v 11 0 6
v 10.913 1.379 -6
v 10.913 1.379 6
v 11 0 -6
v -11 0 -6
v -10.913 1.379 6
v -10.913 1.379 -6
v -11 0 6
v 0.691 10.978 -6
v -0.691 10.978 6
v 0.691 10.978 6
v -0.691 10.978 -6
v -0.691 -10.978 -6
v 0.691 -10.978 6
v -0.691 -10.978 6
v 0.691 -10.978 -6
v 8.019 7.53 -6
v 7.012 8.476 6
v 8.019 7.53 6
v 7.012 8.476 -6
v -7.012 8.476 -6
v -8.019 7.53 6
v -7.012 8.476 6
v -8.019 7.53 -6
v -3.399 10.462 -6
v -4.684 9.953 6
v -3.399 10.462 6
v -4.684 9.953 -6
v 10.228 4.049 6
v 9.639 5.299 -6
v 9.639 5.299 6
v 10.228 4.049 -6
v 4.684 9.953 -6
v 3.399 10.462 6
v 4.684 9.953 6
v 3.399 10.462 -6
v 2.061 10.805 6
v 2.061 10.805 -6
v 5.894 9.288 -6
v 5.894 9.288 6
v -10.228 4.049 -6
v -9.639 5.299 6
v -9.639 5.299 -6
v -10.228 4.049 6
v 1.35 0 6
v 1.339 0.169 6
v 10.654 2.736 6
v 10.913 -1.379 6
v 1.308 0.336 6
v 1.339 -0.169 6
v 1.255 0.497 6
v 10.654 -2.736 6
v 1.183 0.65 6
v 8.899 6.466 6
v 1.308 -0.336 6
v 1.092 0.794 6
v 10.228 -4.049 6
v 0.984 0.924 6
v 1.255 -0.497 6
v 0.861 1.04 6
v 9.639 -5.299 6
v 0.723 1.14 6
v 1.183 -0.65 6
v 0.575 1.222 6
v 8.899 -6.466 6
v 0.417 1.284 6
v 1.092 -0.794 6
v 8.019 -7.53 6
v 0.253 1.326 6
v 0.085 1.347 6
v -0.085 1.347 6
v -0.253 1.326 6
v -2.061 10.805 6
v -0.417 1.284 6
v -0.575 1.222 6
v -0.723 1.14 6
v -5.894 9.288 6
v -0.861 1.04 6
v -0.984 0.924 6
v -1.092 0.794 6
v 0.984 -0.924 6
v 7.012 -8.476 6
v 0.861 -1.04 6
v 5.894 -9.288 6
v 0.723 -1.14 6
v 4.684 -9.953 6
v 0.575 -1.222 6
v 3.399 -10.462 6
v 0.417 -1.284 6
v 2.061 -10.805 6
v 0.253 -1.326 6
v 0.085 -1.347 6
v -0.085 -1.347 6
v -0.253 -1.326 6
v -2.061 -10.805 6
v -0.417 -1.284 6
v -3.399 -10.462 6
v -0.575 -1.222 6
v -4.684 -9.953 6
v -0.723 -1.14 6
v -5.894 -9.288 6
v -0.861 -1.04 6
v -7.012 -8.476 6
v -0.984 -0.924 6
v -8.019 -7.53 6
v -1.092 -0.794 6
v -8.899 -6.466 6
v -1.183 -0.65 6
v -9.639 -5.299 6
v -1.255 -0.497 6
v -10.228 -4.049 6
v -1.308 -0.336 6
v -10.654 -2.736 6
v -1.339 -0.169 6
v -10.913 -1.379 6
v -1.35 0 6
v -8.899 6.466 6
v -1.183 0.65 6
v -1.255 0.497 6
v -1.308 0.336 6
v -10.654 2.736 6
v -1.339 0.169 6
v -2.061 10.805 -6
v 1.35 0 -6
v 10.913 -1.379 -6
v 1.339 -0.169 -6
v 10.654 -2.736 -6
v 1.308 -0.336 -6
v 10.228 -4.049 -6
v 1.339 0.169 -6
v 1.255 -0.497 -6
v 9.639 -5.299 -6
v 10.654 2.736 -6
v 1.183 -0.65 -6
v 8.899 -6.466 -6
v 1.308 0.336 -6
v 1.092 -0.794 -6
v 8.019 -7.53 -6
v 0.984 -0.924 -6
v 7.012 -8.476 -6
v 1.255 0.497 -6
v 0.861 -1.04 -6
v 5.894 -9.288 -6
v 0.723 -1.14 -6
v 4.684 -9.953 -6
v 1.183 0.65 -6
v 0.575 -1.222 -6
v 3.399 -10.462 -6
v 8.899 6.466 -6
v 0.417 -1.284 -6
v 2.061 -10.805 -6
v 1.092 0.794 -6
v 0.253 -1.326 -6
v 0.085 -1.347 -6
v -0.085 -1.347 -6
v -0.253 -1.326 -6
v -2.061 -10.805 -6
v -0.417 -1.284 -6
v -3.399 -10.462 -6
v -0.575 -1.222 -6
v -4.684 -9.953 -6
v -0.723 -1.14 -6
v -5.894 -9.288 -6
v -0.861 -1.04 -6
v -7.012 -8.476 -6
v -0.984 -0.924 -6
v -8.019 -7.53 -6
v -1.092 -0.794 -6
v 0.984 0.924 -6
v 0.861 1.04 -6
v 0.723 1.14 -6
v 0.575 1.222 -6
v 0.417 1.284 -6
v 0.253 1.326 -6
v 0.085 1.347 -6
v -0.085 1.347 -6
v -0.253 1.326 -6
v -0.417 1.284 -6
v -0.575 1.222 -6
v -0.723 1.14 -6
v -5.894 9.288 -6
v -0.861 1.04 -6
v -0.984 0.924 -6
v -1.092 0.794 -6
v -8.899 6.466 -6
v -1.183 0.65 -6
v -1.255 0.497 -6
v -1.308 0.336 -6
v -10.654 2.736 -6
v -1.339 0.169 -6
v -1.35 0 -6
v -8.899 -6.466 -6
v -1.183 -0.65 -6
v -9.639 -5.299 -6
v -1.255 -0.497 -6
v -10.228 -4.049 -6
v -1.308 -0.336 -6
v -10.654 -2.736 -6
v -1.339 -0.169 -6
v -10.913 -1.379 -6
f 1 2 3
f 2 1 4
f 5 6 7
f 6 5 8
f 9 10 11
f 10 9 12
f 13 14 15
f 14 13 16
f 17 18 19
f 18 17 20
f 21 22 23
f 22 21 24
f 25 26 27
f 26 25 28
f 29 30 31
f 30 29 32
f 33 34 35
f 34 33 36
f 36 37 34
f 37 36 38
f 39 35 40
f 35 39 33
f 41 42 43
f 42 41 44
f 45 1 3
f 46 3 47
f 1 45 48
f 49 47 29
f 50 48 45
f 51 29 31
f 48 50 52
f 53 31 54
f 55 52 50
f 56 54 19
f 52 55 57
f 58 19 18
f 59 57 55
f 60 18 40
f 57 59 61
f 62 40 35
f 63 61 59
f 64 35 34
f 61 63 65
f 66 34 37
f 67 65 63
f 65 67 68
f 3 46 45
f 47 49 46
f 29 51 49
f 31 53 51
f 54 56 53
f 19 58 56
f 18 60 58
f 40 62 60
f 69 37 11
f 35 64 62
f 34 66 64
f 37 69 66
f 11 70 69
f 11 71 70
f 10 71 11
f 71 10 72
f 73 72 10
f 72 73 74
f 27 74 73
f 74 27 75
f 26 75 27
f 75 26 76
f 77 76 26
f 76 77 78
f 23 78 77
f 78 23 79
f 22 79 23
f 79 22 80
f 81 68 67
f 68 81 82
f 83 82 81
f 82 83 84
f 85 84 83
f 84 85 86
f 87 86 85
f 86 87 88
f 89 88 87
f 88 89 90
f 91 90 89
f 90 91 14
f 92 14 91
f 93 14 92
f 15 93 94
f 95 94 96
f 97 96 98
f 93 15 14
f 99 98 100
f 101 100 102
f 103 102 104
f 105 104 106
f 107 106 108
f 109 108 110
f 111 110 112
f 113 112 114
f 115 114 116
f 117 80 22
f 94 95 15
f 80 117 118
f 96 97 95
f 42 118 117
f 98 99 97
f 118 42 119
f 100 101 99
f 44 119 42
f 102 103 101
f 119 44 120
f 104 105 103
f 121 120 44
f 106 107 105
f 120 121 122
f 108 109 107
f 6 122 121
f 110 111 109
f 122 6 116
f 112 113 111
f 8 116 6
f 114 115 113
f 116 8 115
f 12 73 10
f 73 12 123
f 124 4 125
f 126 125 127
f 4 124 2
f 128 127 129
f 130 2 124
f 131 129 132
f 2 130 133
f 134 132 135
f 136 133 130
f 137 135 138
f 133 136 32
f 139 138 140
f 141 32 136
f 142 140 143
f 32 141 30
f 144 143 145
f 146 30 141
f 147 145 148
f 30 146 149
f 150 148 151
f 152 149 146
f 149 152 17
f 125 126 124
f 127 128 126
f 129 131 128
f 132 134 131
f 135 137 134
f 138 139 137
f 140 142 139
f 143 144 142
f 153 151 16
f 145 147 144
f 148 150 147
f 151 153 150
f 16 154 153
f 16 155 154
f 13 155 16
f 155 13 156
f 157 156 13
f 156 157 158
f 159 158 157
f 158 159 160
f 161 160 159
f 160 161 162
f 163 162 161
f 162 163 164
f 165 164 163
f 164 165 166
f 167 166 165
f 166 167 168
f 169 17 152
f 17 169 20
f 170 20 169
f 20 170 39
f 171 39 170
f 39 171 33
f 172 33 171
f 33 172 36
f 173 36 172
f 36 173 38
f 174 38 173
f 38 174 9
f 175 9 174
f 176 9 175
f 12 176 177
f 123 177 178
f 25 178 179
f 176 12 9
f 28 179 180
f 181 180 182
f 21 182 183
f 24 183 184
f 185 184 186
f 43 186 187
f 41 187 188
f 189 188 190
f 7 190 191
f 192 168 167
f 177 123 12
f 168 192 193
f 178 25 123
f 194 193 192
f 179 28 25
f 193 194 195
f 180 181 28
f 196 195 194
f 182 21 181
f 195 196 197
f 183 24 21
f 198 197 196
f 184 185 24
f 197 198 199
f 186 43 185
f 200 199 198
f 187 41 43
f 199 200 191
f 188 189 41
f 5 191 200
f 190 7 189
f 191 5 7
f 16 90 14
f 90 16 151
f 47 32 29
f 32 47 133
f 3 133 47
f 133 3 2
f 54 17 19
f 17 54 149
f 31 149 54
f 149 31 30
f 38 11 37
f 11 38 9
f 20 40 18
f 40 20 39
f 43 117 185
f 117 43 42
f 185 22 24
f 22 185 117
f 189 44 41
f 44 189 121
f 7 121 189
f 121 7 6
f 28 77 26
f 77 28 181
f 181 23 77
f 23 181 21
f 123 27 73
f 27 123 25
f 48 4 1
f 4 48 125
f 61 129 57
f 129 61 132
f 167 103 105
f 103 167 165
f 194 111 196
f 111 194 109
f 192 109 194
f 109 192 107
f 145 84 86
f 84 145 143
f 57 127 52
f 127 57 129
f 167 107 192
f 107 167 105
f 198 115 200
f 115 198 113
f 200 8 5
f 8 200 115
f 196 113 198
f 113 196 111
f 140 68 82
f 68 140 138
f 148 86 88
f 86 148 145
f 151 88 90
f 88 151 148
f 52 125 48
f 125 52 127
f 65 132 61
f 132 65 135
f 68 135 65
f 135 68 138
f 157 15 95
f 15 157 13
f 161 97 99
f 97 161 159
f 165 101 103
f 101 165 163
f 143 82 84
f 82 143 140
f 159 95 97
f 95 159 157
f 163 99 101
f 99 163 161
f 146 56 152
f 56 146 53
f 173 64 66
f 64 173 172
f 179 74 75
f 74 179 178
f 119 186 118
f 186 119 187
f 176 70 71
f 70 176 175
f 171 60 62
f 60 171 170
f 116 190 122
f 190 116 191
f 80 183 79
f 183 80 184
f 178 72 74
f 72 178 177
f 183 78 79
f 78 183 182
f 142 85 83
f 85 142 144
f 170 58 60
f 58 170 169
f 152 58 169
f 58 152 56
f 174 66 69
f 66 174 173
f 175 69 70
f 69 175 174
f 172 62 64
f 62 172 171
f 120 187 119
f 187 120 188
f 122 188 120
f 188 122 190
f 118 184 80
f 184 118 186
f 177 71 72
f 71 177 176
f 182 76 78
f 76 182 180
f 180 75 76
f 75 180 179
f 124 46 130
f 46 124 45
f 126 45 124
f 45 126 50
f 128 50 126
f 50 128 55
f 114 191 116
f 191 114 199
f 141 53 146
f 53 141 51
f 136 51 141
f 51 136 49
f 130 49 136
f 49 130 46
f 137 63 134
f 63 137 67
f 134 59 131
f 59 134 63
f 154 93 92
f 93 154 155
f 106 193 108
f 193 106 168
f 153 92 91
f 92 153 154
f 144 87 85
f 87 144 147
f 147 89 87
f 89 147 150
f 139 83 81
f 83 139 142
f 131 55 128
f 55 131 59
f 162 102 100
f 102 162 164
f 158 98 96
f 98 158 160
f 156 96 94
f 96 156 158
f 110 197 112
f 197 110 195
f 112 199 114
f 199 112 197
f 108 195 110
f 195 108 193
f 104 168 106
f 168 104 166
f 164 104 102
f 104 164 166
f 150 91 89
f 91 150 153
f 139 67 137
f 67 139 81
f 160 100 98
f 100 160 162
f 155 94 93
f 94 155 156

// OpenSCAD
$fn = 50;


difference() {
	union() {
		translate(v = [0, 0, -6.0000000000]) {
			cylinder(h = 12, r = 11.0000000000);
		}
	}
	union() {
		translate(v = [0, 0, -100.0000000000]) {
			cylinder(h = 200, r = 1.3500000000);
		}
	}
}
